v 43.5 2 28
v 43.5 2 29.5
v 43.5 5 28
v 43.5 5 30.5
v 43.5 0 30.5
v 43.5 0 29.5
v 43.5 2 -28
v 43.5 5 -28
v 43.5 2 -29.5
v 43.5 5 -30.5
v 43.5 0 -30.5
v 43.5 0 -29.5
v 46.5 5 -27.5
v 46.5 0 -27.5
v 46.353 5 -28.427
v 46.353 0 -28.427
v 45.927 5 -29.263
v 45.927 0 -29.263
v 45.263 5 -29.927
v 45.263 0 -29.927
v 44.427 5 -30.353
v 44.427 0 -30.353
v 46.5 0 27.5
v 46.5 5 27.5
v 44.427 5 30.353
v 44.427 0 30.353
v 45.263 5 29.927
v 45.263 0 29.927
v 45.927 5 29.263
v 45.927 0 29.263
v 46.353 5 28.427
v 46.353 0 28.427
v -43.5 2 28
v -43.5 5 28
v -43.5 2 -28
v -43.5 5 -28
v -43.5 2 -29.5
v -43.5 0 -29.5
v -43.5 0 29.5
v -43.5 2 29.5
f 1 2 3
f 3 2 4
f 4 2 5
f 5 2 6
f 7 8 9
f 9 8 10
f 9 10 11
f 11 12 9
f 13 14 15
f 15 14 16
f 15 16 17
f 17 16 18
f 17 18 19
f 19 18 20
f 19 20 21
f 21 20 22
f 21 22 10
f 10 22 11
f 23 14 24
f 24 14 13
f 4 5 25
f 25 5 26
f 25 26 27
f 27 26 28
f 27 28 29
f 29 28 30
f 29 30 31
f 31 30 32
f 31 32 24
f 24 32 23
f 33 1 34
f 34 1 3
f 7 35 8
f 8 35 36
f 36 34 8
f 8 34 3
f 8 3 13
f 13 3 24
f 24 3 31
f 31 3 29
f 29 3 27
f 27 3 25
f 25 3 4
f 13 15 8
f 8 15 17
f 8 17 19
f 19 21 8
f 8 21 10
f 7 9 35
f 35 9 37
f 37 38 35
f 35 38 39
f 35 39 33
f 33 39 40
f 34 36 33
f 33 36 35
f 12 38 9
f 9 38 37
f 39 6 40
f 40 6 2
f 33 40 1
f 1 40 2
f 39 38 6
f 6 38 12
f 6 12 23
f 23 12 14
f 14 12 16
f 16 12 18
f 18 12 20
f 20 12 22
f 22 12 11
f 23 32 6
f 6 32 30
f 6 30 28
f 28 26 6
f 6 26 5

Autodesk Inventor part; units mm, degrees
ref_plane "YZ Plane" through (0, 0, 0) normal (1, 0, 0) x (0, 1, 0)
ref_plane "XZ Plane" through (0, 0, 0) normal (0, 1, 0) x (-1, 0, 0)
ref_plane "XY Plane" through (0, 0, 0) normal (0, 0, 1) x (1, 0, 0)
sketch "Эскиз1" plane through (0, 0, 0) normal (0, 1, 0) x (-1, 0, 0)
  line L0 (43.5, -29.5) -> (-43.5, -29.5)
  line L1 (-43.5, -29.5) -> (-43.5, 29.5)
  line L2 (-43.5, 29.5) -> (43.5, 29.5)
  line L3 (43.5, 29.5) -> (43.5, -29.5)
  line L4 (43.5, -29.5) -> (-43.5, 29.5) construction
  line L5 (-43.5, -29.5) -> (43.5, 29.5) construction
  point P0 (0, 0)
  dimension "d0" = 87
  dimension "d1" = 59
extrude "Выдавливание1" add sketch "Эскиз1" along normal blind 2
sketch "Эскиз2" plane through (0, 2, 0) normal (0, 1, 0) x (1, 0, 0)
  line L0 (43.5, -28) -> (-43.5, -28)
  line L1 (-43.5, -28) -> (-43.5, 28)
  line L2 (-43.5, 28) -> (43.5, 28)
  line L3 (43.5, 28) -> (43.5, -28)
  line L4 (43.5, -28) -> (-43.5, 28) construction
  line L5 (-43.5, -28) -> (43.5, 28) construction
  point P0 (0, 0)
  dimension "d4" = 87
  dimension "d5" = 56
extrude "Выдавливание2" add sketch "Эскиз2" along normal blind 3
sketch "Эскиз3" plane through (0, 0, 0) normal (0, -1, 0) x (1, 0, 0)
  line L0 (43.5, 29.5) -> (43.5, -29.5) projected
  line L1 (43.5, 0) -> (43.5, -30.5)
  line L2 (43.5, 0) -> (43.5, 30.5)
  line L3 (43.5, -30.5) -> (43.5, -27.5)
  circle A0 centre (43.5, -27.5) radius 3
  line L4 (43.5, 0) -> (-8.3438, 0)
  circle A1 centre (43.5, 27.5) radius 3
  line L5 (46.5, 27.5) -> (46.5, -27.5)
  point P0 (0, 0)
  dimension "d8" = 30.5
  dimension "d9" = 30.5
  dimension "d10" = 3
extrude "Выдавливание3" add sketch "Эскиз3" against normal blind 5 contours L0 A0 L1 | L0 A1 L5 A0 | L0 L2 A1 picked at (44.2818, -28.7902) picked at (43.7225, 26.1917)
properties part number "bt-lid"
